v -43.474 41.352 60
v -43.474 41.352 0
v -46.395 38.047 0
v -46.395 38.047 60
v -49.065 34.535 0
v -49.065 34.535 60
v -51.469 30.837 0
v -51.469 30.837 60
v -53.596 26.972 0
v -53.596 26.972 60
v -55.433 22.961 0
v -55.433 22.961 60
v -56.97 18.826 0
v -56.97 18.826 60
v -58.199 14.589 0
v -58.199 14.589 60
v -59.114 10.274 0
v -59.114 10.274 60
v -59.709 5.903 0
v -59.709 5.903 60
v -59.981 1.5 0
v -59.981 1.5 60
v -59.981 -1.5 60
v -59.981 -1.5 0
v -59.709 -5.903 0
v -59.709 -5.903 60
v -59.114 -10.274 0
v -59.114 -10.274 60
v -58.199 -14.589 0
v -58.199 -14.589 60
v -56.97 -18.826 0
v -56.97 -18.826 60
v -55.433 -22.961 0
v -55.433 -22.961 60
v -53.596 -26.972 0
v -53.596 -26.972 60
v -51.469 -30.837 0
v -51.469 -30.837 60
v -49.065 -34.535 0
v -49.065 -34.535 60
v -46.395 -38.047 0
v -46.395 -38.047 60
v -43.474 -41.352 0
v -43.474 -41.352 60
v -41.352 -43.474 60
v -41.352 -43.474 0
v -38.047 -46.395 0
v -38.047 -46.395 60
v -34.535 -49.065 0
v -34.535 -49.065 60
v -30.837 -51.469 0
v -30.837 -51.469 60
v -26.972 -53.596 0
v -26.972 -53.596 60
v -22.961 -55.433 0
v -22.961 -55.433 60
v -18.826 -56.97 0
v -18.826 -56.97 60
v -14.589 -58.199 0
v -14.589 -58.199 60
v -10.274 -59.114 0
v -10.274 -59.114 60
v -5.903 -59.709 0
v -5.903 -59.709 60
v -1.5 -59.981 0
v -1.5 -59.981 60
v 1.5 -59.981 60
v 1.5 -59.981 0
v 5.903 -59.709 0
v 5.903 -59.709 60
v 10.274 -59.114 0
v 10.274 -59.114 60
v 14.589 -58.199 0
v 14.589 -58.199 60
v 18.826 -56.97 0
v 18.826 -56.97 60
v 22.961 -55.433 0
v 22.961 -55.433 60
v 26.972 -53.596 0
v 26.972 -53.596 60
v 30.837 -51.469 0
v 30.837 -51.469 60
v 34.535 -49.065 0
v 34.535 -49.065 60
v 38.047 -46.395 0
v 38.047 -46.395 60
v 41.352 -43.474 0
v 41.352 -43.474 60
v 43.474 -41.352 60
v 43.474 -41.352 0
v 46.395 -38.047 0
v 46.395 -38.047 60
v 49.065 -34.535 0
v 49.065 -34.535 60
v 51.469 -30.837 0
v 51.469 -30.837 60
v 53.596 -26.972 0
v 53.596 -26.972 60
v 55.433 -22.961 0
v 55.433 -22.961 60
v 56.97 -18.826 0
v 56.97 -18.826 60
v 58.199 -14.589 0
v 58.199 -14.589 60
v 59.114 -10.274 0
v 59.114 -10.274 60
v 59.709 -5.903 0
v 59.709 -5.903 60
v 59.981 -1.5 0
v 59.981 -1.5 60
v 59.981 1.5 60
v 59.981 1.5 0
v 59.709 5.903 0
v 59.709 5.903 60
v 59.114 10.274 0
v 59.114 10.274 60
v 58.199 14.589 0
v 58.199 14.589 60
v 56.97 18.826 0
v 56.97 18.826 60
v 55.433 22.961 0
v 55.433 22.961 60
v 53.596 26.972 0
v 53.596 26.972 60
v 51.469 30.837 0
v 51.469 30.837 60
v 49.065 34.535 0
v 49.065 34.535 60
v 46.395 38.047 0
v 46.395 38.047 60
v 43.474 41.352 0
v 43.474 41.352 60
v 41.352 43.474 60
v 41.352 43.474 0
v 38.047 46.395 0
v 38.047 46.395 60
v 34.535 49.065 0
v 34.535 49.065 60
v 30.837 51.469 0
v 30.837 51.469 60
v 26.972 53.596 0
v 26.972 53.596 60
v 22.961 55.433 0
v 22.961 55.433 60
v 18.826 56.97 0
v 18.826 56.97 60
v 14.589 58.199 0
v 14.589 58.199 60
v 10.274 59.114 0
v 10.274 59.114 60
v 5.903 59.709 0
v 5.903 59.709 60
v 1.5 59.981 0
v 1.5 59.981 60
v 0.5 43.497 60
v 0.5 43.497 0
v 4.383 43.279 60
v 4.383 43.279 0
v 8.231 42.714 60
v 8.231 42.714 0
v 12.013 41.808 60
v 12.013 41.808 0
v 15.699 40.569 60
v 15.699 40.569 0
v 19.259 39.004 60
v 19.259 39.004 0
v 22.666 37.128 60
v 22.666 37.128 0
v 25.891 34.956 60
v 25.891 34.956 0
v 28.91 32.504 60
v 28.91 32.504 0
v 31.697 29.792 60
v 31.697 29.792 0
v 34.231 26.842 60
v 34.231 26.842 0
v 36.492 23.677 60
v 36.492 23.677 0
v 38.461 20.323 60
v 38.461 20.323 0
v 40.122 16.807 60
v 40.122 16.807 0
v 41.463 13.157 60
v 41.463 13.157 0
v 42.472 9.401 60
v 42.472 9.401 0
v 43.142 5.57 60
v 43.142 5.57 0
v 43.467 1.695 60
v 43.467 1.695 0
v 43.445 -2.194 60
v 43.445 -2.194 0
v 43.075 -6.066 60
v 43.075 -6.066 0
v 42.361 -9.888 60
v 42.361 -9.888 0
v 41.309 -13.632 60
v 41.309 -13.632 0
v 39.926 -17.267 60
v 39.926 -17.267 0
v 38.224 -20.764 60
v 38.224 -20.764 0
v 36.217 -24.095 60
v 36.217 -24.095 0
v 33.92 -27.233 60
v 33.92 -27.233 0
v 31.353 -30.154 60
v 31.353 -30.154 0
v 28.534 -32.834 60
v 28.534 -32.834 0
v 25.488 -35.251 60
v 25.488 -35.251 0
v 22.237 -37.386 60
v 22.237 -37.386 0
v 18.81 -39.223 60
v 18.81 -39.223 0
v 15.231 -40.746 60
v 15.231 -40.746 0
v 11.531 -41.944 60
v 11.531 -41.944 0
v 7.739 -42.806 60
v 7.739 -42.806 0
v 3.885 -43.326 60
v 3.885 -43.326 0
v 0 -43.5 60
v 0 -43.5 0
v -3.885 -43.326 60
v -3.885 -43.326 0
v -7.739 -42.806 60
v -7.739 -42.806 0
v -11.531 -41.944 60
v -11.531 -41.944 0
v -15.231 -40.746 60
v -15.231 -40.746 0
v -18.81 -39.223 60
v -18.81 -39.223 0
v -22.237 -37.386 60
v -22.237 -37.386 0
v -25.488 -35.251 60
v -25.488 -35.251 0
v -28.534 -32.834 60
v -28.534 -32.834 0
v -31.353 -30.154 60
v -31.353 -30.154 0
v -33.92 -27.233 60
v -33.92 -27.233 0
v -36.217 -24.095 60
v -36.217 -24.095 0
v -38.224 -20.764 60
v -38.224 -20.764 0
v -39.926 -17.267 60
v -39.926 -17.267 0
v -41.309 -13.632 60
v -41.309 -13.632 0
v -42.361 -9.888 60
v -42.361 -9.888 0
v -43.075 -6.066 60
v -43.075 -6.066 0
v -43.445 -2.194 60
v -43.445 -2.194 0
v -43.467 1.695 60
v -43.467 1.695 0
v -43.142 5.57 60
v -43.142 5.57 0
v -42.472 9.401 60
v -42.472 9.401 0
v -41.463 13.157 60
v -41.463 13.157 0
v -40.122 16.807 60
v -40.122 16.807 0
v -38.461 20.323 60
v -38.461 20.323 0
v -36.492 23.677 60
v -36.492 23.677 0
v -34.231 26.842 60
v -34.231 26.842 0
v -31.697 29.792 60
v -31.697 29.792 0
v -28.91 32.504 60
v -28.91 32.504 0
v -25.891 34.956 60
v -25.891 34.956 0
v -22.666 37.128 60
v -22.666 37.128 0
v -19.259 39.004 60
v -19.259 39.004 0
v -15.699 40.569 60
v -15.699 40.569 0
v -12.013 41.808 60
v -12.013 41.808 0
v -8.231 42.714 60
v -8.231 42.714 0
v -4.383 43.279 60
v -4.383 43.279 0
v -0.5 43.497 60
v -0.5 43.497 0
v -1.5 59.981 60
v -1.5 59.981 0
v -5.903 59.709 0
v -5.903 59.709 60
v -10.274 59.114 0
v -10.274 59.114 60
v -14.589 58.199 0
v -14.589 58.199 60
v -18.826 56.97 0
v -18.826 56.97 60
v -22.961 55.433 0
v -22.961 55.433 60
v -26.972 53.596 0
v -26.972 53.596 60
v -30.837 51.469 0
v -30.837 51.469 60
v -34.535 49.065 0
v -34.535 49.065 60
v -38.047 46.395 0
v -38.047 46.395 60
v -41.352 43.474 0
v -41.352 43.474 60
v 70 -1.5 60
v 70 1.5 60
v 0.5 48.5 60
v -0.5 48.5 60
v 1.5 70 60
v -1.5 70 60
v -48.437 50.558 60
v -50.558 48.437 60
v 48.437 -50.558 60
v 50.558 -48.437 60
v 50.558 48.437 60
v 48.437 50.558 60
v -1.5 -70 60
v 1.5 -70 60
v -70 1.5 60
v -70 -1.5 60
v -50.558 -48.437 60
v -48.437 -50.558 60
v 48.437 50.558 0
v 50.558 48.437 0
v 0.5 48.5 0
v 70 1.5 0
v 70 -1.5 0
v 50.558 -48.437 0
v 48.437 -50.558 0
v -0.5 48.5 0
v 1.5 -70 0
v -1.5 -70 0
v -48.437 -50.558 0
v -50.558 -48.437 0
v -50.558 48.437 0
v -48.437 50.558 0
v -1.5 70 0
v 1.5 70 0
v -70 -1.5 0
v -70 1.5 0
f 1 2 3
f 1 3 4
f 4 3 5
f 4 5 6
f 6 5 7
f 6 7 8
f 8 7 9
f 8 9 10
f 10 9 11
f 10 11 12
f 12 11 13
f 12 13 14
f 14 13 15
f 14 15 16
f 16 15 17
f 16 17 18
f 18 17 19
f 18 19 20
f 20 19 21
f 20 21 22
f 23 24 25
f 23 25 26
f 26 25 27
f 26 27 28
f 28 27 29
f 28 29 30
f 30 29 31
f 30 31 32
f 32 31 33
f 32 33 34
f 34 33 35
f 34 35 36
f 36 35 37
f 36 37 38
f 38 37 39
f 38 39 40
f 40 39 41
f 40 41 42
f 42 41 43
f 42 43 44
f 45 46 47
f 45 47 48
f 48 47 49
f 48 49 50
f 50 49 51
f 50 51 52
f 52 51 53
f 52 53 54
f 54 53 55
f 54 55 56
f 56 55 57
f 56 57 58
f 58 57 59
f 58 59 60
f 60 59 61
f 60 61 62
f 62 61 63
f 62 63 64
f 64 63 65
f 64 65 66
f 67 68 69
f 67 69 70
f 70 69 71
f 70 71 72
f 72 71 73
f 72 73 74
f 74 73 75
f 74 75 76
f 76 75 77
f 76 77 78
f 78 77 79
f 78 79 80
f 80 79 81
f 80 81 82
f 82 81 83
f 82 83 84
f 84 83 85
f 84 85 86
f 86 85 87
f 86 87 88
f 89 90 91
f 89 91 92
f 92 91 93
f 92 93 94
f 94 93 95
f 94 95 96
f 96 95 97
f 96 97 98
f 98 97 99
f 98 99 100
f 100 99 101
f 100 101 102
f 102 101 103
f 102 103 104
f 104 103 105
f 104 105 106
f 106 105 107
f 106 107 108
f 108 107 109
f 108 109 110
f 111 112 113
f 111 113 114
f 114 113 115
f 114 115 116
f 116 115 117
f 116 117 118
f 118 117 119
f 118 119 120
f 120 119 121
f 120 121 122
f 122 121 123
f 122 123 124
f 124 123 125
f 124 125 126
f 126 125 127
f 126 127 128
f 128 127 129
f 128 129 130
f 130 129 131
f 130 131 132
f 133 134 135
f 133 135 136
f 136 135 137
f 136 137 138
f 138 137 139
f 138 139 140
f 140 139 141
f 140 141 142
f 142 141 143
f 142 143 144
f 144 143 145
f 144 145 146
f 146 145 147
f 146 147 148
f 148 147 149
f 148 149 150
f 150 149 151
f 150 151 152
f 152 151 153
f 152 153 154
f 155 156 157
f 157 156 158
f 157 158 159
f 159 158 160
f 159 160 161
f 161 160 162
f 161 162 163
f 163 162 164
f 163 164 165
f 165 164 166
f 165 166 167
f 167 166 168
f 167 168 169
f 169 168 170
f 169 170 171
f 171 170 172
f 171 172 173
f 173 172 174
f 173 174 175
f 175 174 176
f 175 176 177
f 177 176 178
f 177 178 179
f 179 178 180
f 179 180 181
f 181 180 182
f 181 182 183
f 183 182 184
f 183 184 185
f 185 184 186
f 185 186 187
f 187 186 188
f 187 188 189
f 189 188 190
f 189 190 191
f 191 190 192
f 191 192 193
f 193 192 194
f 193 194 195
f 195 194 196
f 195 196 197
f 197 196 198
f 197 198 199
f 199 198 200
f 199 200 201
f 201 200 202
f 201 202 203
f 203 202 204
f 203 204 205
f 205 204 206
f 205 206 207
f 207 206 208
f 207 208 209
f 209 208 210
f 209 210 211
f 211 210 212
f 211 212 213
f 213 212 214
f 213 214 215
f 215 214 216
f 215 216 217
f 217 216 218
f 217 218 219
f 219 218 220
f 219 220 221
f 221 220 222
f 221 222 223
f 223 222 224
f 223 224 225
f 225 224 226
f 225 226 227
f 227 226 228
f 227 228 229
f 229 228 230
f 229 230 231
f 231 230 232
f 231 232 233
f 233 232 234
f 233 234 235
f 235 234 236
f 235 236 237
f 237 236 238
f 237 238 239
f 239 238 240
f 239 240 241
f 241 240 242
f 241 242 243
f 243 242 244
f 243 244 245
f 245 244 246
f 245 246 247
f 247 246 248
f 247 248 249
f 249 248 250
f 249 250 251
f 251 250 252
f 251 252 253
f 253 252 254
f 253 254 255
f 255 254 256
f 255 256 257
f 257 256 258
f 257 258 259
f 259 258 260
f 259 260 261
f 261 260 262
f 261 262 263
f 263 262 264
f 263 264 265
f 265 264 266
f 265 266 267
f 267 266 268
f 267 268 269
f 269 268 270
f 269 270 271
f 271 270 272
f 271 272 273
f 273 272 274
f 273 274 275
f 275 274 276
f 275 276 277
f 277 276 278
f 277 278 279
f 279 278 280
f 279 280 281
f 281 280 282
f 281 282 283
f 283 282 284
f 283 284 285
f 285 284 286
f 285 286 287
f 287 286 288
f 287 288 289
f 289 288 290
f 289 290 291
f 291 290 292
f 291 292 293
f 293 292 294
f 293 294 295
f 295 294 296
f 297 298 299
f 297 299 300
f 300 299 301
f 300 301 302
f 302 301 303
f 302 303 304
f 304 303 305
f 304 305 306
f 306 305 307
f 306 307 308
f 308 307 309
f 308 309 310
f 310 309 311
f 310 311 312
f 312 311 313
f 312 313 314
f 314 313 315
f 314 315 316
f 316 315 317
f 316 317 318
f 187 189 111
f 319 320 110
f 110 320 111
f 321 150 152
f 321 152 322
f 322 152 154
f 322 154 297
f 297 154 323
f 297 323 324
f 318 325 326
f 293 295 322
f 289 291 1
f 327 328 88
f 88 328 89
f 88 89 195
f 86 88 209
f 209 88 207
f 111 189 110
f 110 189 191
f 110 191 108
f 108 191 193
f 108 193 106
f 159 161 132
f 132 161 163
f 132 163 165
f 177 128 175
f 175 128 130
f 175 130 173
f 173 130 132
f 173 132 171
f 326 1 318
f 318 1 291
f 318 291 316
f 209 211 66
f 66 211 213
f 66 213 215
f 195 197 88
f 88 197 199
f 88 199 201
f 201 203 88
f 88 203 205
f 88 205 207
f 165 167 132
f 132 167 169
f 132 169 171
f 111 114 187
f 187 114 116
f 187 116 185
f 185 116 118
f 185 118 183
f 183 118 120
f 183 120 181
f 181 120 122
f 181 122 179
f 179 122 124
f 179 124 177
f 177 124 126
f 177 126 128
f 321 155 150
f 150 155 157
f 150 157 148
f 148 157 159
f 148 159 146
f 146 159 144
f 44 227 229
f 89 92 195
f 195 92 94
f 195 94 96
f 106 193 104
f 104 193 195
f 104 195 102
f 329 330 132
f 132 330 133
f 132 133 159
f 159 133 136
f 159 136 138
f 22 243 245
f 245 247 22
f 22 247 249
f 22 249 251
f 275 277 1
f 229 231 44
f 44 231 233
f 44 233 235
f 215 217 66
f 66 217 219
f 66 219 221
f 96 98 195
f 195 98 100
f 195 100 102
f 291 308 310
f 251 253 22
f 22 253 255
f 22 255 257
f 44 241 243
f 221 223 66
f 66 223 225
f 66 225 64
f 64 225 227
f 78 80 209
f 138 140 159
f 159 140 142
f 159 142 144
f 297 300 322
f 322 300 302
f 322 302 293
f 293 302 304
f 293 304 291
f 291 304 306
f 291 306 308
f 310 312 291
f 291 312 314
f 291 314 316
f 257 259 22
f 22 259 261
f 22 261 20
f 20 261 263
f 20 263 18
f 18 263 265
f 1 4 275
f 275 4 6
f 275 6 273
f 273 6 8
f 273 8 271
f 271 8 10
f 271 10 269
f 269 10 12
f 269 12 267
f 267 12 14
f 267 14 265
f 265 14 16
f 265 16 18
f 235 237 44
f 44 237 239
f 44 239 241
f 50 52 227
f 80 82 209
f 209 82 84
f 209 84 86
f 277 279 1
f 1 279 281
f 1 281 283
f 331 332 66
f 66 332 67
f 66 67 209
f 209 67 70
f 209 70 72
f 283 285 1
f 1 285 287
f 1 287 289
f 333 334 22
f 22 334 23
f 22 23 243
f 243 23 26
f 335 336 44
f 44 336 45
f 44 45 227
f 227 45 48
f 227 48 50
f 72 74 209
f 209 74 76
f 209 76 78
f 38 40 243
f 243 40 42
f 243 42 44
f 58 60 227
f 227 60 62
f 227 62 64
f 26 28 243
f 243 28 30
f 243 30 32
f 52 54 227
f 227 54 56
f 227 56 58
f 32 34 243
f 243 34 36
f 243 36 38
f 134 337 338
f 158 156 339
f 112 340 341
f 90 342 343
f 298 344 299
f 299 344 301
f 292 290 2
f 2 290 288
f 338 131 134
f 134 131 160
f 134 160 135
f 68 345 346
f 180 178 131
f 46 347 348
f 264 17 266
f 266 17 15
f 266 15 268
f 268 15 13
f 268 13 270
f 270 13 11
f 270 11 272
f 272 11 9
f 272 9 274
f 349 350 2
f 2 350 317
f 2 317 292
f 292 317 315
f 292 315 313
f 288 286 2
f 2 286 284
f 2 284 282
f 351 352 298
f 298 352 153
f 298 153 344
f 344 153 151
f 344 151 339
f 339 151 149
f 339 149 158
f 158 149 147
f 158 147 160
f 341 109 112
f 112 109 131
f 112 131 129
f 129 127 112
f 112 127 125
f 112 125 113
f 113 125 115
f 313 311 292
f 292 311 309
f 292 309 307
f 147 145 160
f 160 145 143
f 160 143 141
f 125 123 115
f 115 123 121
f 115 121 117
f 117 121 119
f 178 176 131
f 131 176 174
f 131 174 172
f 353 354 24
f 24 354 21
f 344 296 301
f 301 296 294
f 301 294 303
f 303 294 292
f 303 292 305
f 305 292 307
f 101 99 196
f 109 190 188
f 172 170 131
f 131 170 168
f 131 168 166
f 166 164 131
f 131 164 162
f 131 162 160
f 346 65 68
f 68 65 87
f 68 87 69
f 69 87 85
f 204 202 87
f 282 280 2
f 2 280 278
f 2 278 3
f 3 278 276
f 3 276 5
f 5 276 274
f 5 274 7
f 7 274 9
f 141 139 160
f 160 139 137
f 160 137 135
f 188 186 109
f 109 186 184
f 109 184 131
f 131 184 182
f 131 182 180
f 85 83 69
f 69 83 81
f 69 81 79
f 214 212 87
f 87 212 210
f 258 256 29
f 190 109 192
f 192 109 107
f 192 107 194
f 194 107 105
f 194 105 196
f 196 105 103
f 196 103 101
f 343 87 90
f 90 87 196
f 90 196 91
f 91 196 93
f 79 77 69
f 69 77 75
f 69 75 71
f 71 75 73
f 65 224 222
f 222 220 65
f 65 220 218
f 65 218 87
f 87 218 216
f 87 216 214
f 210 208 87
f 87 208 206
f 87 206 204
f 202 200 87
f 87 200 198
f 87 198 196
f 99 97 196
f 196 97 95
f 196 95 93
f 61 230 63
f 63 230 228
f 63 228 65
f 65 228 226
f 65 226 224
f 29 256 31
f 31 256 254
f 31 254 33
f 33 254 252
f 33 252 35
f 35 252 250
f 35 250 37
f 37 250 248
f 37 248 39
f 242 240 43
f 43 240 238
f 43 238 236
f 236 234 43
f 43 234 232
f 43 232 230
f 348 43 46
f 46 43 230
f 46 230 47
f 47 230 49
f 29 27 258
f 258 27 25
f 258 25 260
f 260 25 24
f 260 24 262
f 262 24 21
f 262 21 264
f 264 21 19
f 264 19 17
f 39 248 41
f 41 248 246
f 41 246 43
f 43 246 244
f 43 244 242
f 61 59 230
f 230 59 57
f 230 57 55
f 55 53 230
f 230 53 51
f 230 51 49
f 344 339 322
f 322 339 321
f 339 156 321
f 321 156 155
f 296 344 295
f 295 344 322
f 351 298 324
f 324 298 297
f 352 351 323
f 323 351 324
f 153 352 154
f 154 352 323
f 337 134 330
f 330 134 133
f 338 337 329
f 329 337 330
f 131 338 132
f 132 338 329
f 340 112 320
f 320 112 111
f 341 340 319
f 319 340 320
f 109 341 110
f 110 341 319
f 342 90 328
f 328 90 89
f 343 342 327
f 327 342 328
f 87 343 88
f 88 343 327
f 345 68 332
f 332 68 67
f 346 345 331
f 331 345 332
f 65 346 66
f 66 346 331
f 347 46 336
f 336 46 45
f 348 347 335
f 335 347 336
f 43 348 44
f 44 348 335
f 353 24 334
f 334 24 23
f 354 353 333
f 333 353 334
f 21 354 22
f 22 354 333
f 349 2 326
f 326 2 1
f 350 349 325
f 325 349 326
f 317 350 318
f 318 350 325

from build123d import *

# Parameters (mm, degrees)
SKETCH1_R           = 60
SKETCH1_R_2         = 43.5
EXTRUSION1_DEPTH    = 60
EXTRUSION3_START    = -60
EXTRUSION3_DEPTH    = 60
BOSS_EXTRUDE1_DEPTH = 60


with BuildPart() as part:
    # Sketch1 → Extrusion1 (new body)
    with BuildSketch(Plane.XY):
        Circle(SKETCH1_R)
        Circle(SKETCH1_R_2, mode=Mode.SUBTRACT)
    extrude(amount=EXTRUSION1_DEPTH)

    # Sketch3 → Extrusion3 (cut)
    with BuildSketch(Plane.XY.offset(60).offset(EXTRUSION3_START)):
        with BuildLine():
            Line((-0.5, 48.5), (-0.5, 43.497126342))
            ThreePointArc((-0.5, 43.497126342), (0, 43.5), (0.5, 43.497126342))
            Line((0.5, 43.497126342), (0.5, 48.5))
            Line((0.5, 48.5), (-0.5, 48.5))
        make_face()
    extrude(amount=EXTRUSION3_DEPTH, mode=Mode.SUBTRACT)

    # Sketch4 → Boss-Extrude1 (add, through all)
    with BuildSketch(Plane.XY.offset(60)):
        with BuildLine():
            Line((41.352486375, 43.473806719), (48.436814511, 50.558134855))
            Line((48.436814511, 50.558134855), (50.558134855, 48.436814511))
            Line((50.558134855, 48.436814511), (43.473806719, 41.352486375))
            ThreePointArc((43.473806719, 41.352486375), (42.426406871, 42.426406871), (41.352486375, 43.473806719))
        make_face()
        with BuildLine():
            Line((1.5, 59.981247069), (1.5, 70))
            Line((1.5, 70), (-1.5, 70))
            Line((-1.5, 70), (-1.5, 59.981247069))
            ThreePointArc((-1.5, 59.981247069), (0, 60), (1.5, 59.981247069))
        make_face()
        with BuildLine():
            Line((59.981247069, 1.5), (70, 1.5))
            Line((70, 1.5), (70, -1.5))
            Line((70, -1.5), (59.981247069, -1.5))
            ThreePointArc((59.981247069, -1.5), (60, 0), (59.981247069, 1.5))
        make_face()
        with BuildLine():
            Line((43.473806719, -41.352486375), (50.558134855, -48.436814511))
            Line((50.558134855, -48.436814511), (48.436814511, -50.558134855))
            Line((48.436814511, -50.558134855), (41.352486375, -43.473806719))
            ThreePointArc((41.352486375, -43.473806719), (42.426406871, -42.426406871), (43.473806719, -41.352486375))
        make_face()
        with BuildLine():
            Line((1.5, -59.981247069), (1.5, -70))
            Line((1.5, -70), (-1.5, -70))
            Line((-1.5, -70), (-1.5, -59.981247069))
            ThreePointArc((-1.5, -59.981247069), (0, -60), (1.5, -59.981247069))
        make_face()
        with BuildLine():
            Line((-41.352486375, -43.473806719), (-48.436814511, -50.558134855))
            Line((-48.436814511, -50.558134855), (-50.558134855, -48.436814511))
            Line((-50.558134855, -48.436814511), (-43.473806719, -41.352486375))
            ThreePointArc((-43.473806719, -41.352486375), (-42.426406871, -42.426406871), (-41.352486375, -43.473806719))
        make_face()
        with BuildLine():
            Line((-59.981247069, -1.5), (-70, -1.5))
            Line((-70, -1.5), (-70, 1.5))
            Line((-70, 1.5), (-59.981247069, 1.5))
            ThreePointArc((-59.981247069, 1.5), (-60, 0), (-59.981247069, -1.5))
        make_face()
        with BuildLine():
            Line((-43.473806719, 41.352486375), (-50.558134855, 48.436814511))
            Line((-50.558134855, 48.436814511), (-48.436814511, 50.558134855))
            Line((-48.436814511, 50.558134855), (-41.352486375, 43.473806719))
            ThreePointArc((-41.352486375, 43.473806719), (-42.426406871, 42.426406871), (-43.473806719, 41.352486375))
        make_face()
    extrude(amount=-BOSS_EXTRUDE1_DEPTH)


solid = part.part
